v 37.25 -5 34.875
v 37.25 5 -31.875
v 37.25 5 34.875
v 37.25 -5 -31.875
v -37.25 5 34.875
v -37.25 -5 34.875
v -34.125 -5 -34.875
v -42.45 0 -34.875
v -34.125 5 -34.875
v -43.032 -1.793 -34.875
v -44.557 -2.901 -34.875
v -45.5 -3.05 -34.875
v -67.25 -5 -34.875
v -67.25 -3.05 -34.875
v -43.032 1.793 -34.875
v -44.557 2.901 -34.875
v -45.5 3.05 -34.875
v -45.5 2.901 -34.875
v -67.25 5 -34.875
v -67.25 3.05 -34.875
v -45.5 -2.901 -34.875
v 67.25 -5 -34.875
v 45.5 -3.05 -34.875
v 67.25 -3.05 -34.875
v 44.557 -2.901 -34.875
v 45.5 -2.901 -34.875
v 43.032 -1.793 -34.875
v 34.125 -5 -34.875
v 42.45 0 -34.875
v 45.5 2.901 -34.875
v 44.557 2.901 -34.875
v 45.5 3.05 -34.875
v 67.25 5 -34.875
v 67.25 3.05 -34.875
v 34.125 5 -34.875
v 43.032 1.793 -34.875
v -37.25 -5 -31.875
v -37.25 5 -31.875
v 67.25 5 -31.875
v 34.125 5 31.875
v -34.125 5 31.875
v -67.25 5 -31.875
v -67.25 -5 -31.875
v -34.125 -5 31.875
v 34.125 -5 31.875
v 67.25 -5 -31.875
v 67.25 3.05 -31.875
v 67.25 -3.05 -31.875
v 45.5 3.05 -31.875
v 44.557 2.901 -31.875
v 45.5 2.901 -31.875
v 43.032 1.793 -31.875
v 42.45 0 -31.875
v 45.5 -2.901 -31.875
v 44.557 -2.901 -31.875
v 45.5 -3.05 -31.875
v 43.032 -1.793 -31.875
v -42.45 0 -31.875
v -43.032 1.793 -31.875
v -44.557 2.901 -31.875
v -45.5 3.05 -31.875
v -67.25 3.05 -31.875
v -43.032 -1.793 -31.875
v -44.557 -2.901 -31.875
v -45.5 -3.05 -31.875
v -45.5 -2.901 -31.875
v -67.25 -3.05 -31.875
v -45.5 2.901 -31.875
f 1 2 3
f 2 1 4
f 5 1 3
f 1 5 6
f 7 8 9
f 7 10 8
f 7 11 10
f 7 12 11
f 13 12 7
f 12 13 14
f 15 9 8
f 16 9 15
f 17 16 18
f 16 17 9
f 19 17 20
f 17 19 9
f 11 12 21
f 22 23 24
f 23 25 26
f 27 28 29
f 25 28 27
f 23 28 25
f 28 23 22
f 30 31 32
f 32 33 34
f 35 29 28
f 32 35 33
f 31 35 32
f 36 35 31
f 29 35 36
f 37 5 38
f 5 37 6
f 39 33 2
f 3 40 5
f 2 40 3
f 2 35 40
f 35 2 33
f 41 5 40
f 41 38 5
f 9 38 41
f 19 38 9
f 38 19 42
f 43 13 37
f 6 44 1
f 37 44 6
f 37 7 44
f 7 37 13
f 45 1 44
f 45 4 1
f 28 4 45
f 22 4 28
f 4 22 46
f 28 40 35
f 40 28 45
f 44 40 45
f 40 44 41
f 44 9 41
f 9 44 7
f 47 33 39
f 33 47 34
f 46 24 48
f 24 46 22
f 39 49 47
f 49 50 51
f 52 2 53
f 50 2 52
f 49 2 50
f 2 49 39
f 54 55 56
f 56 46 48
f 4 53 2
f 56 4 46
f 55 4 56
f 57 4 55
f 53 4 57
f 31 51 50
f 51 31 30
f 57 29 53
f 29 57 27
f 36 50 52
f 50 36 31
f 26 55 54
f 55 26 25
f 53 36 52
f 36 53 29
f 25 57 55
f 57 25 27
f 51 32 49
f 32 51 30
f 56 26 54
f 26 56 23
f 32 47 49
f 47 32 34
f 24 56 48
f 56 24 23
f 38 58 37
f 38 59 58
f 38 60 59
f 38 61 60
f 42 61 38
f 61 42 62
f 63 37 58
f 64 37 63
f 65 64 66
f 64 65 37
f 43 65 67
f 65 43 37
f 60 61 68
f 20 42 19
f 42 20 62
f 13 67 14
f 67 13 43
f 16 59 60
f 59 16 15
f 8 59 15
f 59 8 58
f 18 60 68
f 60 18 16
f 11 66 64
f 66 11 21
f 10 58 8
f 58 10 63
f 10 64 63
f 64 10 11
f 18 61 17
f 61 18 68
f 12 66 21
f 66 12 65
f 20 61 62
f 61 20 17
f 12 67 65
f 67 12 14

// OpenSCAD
// Cubes enclosure, emission light path. DoMB SPIM
// Borys Olifirov 2024

FDM_offset = 0.2;

enc_w = 65;
enc_h = 65;
enc_l = 180;
wall_t = 1.5;

clip_l = 10;
clip_t = 3;
clip_offset = 0.25;

foot_l = 30;
s_d = 6.1;

module EnclosureClip() {
    union() {
        difference() {
            cube([enc_w+2*wall_t+2*clip_offset+2*clip_t,
                  clip_l,
                  enc_h+wall_t+clip_t+clip_offset],
                 center = true);
            translate([0,0,-wall_t])
                cube([enc_w+2*wall_t+clip_offset,
                      enc_l/5,
                      enc_h+wall_t+clip_offset], center = true);
        }
        difference() {
            // right foot            
            translate([(enc_w+2*wall_t+2*clip_offset+2*clip_t)/2 + foot_l/2,
                       0,
                      -(enc_h+wall_t+clip_t+clip_offset)/2+clip_t/2])
                cube([foot_l,clip_l,clip_t], center = true);
            translate([(enc_w+2*wall_t+2*clip_offset+2*clip_t)/2+s_d/2+(5+FDM_offset),
                       0,
                       -enc_h/2])
                cylinder(d = s_d, h = 30, center = true);
            translate([(enc_w+2*wall_t+2*clip_offset+2*clip_t)/2+s_d/2+(5+FDM_offset+100/2),
                       0,
                       -enc_h/2])
                cube([100,s_d,30], center = true);
        }
        
        difference() {
            // left foot            
            translate([-(enc_w+2*wall_t+2*clip_offset+2*clip_t)/2 - foot_l/2,
                       0,
                      -(enc_h+wall_t+clip_t+clip_offset)/2+clip_t/2])
                cube([foot_l,clip_l,clip_t], center = true);
            translate([-(enc_w+2*wall_t+2*clip_offset+2*clip_t)/2-s_d/2-(5+FDM_offset),
                       0,
                       -enc_h/2])
                cylinder(d = s_d, h = 30, center = true);
            translate([-(enc_w+2*wall_t+2*clip_offset+2*clip_t)/2-s_d/2-(5+FDM_offset+100/2),
                       0,
                       -enc_h/2])
                cube([100,s_d,30], center = true);
        }
    }
}

EnclosureClip();
